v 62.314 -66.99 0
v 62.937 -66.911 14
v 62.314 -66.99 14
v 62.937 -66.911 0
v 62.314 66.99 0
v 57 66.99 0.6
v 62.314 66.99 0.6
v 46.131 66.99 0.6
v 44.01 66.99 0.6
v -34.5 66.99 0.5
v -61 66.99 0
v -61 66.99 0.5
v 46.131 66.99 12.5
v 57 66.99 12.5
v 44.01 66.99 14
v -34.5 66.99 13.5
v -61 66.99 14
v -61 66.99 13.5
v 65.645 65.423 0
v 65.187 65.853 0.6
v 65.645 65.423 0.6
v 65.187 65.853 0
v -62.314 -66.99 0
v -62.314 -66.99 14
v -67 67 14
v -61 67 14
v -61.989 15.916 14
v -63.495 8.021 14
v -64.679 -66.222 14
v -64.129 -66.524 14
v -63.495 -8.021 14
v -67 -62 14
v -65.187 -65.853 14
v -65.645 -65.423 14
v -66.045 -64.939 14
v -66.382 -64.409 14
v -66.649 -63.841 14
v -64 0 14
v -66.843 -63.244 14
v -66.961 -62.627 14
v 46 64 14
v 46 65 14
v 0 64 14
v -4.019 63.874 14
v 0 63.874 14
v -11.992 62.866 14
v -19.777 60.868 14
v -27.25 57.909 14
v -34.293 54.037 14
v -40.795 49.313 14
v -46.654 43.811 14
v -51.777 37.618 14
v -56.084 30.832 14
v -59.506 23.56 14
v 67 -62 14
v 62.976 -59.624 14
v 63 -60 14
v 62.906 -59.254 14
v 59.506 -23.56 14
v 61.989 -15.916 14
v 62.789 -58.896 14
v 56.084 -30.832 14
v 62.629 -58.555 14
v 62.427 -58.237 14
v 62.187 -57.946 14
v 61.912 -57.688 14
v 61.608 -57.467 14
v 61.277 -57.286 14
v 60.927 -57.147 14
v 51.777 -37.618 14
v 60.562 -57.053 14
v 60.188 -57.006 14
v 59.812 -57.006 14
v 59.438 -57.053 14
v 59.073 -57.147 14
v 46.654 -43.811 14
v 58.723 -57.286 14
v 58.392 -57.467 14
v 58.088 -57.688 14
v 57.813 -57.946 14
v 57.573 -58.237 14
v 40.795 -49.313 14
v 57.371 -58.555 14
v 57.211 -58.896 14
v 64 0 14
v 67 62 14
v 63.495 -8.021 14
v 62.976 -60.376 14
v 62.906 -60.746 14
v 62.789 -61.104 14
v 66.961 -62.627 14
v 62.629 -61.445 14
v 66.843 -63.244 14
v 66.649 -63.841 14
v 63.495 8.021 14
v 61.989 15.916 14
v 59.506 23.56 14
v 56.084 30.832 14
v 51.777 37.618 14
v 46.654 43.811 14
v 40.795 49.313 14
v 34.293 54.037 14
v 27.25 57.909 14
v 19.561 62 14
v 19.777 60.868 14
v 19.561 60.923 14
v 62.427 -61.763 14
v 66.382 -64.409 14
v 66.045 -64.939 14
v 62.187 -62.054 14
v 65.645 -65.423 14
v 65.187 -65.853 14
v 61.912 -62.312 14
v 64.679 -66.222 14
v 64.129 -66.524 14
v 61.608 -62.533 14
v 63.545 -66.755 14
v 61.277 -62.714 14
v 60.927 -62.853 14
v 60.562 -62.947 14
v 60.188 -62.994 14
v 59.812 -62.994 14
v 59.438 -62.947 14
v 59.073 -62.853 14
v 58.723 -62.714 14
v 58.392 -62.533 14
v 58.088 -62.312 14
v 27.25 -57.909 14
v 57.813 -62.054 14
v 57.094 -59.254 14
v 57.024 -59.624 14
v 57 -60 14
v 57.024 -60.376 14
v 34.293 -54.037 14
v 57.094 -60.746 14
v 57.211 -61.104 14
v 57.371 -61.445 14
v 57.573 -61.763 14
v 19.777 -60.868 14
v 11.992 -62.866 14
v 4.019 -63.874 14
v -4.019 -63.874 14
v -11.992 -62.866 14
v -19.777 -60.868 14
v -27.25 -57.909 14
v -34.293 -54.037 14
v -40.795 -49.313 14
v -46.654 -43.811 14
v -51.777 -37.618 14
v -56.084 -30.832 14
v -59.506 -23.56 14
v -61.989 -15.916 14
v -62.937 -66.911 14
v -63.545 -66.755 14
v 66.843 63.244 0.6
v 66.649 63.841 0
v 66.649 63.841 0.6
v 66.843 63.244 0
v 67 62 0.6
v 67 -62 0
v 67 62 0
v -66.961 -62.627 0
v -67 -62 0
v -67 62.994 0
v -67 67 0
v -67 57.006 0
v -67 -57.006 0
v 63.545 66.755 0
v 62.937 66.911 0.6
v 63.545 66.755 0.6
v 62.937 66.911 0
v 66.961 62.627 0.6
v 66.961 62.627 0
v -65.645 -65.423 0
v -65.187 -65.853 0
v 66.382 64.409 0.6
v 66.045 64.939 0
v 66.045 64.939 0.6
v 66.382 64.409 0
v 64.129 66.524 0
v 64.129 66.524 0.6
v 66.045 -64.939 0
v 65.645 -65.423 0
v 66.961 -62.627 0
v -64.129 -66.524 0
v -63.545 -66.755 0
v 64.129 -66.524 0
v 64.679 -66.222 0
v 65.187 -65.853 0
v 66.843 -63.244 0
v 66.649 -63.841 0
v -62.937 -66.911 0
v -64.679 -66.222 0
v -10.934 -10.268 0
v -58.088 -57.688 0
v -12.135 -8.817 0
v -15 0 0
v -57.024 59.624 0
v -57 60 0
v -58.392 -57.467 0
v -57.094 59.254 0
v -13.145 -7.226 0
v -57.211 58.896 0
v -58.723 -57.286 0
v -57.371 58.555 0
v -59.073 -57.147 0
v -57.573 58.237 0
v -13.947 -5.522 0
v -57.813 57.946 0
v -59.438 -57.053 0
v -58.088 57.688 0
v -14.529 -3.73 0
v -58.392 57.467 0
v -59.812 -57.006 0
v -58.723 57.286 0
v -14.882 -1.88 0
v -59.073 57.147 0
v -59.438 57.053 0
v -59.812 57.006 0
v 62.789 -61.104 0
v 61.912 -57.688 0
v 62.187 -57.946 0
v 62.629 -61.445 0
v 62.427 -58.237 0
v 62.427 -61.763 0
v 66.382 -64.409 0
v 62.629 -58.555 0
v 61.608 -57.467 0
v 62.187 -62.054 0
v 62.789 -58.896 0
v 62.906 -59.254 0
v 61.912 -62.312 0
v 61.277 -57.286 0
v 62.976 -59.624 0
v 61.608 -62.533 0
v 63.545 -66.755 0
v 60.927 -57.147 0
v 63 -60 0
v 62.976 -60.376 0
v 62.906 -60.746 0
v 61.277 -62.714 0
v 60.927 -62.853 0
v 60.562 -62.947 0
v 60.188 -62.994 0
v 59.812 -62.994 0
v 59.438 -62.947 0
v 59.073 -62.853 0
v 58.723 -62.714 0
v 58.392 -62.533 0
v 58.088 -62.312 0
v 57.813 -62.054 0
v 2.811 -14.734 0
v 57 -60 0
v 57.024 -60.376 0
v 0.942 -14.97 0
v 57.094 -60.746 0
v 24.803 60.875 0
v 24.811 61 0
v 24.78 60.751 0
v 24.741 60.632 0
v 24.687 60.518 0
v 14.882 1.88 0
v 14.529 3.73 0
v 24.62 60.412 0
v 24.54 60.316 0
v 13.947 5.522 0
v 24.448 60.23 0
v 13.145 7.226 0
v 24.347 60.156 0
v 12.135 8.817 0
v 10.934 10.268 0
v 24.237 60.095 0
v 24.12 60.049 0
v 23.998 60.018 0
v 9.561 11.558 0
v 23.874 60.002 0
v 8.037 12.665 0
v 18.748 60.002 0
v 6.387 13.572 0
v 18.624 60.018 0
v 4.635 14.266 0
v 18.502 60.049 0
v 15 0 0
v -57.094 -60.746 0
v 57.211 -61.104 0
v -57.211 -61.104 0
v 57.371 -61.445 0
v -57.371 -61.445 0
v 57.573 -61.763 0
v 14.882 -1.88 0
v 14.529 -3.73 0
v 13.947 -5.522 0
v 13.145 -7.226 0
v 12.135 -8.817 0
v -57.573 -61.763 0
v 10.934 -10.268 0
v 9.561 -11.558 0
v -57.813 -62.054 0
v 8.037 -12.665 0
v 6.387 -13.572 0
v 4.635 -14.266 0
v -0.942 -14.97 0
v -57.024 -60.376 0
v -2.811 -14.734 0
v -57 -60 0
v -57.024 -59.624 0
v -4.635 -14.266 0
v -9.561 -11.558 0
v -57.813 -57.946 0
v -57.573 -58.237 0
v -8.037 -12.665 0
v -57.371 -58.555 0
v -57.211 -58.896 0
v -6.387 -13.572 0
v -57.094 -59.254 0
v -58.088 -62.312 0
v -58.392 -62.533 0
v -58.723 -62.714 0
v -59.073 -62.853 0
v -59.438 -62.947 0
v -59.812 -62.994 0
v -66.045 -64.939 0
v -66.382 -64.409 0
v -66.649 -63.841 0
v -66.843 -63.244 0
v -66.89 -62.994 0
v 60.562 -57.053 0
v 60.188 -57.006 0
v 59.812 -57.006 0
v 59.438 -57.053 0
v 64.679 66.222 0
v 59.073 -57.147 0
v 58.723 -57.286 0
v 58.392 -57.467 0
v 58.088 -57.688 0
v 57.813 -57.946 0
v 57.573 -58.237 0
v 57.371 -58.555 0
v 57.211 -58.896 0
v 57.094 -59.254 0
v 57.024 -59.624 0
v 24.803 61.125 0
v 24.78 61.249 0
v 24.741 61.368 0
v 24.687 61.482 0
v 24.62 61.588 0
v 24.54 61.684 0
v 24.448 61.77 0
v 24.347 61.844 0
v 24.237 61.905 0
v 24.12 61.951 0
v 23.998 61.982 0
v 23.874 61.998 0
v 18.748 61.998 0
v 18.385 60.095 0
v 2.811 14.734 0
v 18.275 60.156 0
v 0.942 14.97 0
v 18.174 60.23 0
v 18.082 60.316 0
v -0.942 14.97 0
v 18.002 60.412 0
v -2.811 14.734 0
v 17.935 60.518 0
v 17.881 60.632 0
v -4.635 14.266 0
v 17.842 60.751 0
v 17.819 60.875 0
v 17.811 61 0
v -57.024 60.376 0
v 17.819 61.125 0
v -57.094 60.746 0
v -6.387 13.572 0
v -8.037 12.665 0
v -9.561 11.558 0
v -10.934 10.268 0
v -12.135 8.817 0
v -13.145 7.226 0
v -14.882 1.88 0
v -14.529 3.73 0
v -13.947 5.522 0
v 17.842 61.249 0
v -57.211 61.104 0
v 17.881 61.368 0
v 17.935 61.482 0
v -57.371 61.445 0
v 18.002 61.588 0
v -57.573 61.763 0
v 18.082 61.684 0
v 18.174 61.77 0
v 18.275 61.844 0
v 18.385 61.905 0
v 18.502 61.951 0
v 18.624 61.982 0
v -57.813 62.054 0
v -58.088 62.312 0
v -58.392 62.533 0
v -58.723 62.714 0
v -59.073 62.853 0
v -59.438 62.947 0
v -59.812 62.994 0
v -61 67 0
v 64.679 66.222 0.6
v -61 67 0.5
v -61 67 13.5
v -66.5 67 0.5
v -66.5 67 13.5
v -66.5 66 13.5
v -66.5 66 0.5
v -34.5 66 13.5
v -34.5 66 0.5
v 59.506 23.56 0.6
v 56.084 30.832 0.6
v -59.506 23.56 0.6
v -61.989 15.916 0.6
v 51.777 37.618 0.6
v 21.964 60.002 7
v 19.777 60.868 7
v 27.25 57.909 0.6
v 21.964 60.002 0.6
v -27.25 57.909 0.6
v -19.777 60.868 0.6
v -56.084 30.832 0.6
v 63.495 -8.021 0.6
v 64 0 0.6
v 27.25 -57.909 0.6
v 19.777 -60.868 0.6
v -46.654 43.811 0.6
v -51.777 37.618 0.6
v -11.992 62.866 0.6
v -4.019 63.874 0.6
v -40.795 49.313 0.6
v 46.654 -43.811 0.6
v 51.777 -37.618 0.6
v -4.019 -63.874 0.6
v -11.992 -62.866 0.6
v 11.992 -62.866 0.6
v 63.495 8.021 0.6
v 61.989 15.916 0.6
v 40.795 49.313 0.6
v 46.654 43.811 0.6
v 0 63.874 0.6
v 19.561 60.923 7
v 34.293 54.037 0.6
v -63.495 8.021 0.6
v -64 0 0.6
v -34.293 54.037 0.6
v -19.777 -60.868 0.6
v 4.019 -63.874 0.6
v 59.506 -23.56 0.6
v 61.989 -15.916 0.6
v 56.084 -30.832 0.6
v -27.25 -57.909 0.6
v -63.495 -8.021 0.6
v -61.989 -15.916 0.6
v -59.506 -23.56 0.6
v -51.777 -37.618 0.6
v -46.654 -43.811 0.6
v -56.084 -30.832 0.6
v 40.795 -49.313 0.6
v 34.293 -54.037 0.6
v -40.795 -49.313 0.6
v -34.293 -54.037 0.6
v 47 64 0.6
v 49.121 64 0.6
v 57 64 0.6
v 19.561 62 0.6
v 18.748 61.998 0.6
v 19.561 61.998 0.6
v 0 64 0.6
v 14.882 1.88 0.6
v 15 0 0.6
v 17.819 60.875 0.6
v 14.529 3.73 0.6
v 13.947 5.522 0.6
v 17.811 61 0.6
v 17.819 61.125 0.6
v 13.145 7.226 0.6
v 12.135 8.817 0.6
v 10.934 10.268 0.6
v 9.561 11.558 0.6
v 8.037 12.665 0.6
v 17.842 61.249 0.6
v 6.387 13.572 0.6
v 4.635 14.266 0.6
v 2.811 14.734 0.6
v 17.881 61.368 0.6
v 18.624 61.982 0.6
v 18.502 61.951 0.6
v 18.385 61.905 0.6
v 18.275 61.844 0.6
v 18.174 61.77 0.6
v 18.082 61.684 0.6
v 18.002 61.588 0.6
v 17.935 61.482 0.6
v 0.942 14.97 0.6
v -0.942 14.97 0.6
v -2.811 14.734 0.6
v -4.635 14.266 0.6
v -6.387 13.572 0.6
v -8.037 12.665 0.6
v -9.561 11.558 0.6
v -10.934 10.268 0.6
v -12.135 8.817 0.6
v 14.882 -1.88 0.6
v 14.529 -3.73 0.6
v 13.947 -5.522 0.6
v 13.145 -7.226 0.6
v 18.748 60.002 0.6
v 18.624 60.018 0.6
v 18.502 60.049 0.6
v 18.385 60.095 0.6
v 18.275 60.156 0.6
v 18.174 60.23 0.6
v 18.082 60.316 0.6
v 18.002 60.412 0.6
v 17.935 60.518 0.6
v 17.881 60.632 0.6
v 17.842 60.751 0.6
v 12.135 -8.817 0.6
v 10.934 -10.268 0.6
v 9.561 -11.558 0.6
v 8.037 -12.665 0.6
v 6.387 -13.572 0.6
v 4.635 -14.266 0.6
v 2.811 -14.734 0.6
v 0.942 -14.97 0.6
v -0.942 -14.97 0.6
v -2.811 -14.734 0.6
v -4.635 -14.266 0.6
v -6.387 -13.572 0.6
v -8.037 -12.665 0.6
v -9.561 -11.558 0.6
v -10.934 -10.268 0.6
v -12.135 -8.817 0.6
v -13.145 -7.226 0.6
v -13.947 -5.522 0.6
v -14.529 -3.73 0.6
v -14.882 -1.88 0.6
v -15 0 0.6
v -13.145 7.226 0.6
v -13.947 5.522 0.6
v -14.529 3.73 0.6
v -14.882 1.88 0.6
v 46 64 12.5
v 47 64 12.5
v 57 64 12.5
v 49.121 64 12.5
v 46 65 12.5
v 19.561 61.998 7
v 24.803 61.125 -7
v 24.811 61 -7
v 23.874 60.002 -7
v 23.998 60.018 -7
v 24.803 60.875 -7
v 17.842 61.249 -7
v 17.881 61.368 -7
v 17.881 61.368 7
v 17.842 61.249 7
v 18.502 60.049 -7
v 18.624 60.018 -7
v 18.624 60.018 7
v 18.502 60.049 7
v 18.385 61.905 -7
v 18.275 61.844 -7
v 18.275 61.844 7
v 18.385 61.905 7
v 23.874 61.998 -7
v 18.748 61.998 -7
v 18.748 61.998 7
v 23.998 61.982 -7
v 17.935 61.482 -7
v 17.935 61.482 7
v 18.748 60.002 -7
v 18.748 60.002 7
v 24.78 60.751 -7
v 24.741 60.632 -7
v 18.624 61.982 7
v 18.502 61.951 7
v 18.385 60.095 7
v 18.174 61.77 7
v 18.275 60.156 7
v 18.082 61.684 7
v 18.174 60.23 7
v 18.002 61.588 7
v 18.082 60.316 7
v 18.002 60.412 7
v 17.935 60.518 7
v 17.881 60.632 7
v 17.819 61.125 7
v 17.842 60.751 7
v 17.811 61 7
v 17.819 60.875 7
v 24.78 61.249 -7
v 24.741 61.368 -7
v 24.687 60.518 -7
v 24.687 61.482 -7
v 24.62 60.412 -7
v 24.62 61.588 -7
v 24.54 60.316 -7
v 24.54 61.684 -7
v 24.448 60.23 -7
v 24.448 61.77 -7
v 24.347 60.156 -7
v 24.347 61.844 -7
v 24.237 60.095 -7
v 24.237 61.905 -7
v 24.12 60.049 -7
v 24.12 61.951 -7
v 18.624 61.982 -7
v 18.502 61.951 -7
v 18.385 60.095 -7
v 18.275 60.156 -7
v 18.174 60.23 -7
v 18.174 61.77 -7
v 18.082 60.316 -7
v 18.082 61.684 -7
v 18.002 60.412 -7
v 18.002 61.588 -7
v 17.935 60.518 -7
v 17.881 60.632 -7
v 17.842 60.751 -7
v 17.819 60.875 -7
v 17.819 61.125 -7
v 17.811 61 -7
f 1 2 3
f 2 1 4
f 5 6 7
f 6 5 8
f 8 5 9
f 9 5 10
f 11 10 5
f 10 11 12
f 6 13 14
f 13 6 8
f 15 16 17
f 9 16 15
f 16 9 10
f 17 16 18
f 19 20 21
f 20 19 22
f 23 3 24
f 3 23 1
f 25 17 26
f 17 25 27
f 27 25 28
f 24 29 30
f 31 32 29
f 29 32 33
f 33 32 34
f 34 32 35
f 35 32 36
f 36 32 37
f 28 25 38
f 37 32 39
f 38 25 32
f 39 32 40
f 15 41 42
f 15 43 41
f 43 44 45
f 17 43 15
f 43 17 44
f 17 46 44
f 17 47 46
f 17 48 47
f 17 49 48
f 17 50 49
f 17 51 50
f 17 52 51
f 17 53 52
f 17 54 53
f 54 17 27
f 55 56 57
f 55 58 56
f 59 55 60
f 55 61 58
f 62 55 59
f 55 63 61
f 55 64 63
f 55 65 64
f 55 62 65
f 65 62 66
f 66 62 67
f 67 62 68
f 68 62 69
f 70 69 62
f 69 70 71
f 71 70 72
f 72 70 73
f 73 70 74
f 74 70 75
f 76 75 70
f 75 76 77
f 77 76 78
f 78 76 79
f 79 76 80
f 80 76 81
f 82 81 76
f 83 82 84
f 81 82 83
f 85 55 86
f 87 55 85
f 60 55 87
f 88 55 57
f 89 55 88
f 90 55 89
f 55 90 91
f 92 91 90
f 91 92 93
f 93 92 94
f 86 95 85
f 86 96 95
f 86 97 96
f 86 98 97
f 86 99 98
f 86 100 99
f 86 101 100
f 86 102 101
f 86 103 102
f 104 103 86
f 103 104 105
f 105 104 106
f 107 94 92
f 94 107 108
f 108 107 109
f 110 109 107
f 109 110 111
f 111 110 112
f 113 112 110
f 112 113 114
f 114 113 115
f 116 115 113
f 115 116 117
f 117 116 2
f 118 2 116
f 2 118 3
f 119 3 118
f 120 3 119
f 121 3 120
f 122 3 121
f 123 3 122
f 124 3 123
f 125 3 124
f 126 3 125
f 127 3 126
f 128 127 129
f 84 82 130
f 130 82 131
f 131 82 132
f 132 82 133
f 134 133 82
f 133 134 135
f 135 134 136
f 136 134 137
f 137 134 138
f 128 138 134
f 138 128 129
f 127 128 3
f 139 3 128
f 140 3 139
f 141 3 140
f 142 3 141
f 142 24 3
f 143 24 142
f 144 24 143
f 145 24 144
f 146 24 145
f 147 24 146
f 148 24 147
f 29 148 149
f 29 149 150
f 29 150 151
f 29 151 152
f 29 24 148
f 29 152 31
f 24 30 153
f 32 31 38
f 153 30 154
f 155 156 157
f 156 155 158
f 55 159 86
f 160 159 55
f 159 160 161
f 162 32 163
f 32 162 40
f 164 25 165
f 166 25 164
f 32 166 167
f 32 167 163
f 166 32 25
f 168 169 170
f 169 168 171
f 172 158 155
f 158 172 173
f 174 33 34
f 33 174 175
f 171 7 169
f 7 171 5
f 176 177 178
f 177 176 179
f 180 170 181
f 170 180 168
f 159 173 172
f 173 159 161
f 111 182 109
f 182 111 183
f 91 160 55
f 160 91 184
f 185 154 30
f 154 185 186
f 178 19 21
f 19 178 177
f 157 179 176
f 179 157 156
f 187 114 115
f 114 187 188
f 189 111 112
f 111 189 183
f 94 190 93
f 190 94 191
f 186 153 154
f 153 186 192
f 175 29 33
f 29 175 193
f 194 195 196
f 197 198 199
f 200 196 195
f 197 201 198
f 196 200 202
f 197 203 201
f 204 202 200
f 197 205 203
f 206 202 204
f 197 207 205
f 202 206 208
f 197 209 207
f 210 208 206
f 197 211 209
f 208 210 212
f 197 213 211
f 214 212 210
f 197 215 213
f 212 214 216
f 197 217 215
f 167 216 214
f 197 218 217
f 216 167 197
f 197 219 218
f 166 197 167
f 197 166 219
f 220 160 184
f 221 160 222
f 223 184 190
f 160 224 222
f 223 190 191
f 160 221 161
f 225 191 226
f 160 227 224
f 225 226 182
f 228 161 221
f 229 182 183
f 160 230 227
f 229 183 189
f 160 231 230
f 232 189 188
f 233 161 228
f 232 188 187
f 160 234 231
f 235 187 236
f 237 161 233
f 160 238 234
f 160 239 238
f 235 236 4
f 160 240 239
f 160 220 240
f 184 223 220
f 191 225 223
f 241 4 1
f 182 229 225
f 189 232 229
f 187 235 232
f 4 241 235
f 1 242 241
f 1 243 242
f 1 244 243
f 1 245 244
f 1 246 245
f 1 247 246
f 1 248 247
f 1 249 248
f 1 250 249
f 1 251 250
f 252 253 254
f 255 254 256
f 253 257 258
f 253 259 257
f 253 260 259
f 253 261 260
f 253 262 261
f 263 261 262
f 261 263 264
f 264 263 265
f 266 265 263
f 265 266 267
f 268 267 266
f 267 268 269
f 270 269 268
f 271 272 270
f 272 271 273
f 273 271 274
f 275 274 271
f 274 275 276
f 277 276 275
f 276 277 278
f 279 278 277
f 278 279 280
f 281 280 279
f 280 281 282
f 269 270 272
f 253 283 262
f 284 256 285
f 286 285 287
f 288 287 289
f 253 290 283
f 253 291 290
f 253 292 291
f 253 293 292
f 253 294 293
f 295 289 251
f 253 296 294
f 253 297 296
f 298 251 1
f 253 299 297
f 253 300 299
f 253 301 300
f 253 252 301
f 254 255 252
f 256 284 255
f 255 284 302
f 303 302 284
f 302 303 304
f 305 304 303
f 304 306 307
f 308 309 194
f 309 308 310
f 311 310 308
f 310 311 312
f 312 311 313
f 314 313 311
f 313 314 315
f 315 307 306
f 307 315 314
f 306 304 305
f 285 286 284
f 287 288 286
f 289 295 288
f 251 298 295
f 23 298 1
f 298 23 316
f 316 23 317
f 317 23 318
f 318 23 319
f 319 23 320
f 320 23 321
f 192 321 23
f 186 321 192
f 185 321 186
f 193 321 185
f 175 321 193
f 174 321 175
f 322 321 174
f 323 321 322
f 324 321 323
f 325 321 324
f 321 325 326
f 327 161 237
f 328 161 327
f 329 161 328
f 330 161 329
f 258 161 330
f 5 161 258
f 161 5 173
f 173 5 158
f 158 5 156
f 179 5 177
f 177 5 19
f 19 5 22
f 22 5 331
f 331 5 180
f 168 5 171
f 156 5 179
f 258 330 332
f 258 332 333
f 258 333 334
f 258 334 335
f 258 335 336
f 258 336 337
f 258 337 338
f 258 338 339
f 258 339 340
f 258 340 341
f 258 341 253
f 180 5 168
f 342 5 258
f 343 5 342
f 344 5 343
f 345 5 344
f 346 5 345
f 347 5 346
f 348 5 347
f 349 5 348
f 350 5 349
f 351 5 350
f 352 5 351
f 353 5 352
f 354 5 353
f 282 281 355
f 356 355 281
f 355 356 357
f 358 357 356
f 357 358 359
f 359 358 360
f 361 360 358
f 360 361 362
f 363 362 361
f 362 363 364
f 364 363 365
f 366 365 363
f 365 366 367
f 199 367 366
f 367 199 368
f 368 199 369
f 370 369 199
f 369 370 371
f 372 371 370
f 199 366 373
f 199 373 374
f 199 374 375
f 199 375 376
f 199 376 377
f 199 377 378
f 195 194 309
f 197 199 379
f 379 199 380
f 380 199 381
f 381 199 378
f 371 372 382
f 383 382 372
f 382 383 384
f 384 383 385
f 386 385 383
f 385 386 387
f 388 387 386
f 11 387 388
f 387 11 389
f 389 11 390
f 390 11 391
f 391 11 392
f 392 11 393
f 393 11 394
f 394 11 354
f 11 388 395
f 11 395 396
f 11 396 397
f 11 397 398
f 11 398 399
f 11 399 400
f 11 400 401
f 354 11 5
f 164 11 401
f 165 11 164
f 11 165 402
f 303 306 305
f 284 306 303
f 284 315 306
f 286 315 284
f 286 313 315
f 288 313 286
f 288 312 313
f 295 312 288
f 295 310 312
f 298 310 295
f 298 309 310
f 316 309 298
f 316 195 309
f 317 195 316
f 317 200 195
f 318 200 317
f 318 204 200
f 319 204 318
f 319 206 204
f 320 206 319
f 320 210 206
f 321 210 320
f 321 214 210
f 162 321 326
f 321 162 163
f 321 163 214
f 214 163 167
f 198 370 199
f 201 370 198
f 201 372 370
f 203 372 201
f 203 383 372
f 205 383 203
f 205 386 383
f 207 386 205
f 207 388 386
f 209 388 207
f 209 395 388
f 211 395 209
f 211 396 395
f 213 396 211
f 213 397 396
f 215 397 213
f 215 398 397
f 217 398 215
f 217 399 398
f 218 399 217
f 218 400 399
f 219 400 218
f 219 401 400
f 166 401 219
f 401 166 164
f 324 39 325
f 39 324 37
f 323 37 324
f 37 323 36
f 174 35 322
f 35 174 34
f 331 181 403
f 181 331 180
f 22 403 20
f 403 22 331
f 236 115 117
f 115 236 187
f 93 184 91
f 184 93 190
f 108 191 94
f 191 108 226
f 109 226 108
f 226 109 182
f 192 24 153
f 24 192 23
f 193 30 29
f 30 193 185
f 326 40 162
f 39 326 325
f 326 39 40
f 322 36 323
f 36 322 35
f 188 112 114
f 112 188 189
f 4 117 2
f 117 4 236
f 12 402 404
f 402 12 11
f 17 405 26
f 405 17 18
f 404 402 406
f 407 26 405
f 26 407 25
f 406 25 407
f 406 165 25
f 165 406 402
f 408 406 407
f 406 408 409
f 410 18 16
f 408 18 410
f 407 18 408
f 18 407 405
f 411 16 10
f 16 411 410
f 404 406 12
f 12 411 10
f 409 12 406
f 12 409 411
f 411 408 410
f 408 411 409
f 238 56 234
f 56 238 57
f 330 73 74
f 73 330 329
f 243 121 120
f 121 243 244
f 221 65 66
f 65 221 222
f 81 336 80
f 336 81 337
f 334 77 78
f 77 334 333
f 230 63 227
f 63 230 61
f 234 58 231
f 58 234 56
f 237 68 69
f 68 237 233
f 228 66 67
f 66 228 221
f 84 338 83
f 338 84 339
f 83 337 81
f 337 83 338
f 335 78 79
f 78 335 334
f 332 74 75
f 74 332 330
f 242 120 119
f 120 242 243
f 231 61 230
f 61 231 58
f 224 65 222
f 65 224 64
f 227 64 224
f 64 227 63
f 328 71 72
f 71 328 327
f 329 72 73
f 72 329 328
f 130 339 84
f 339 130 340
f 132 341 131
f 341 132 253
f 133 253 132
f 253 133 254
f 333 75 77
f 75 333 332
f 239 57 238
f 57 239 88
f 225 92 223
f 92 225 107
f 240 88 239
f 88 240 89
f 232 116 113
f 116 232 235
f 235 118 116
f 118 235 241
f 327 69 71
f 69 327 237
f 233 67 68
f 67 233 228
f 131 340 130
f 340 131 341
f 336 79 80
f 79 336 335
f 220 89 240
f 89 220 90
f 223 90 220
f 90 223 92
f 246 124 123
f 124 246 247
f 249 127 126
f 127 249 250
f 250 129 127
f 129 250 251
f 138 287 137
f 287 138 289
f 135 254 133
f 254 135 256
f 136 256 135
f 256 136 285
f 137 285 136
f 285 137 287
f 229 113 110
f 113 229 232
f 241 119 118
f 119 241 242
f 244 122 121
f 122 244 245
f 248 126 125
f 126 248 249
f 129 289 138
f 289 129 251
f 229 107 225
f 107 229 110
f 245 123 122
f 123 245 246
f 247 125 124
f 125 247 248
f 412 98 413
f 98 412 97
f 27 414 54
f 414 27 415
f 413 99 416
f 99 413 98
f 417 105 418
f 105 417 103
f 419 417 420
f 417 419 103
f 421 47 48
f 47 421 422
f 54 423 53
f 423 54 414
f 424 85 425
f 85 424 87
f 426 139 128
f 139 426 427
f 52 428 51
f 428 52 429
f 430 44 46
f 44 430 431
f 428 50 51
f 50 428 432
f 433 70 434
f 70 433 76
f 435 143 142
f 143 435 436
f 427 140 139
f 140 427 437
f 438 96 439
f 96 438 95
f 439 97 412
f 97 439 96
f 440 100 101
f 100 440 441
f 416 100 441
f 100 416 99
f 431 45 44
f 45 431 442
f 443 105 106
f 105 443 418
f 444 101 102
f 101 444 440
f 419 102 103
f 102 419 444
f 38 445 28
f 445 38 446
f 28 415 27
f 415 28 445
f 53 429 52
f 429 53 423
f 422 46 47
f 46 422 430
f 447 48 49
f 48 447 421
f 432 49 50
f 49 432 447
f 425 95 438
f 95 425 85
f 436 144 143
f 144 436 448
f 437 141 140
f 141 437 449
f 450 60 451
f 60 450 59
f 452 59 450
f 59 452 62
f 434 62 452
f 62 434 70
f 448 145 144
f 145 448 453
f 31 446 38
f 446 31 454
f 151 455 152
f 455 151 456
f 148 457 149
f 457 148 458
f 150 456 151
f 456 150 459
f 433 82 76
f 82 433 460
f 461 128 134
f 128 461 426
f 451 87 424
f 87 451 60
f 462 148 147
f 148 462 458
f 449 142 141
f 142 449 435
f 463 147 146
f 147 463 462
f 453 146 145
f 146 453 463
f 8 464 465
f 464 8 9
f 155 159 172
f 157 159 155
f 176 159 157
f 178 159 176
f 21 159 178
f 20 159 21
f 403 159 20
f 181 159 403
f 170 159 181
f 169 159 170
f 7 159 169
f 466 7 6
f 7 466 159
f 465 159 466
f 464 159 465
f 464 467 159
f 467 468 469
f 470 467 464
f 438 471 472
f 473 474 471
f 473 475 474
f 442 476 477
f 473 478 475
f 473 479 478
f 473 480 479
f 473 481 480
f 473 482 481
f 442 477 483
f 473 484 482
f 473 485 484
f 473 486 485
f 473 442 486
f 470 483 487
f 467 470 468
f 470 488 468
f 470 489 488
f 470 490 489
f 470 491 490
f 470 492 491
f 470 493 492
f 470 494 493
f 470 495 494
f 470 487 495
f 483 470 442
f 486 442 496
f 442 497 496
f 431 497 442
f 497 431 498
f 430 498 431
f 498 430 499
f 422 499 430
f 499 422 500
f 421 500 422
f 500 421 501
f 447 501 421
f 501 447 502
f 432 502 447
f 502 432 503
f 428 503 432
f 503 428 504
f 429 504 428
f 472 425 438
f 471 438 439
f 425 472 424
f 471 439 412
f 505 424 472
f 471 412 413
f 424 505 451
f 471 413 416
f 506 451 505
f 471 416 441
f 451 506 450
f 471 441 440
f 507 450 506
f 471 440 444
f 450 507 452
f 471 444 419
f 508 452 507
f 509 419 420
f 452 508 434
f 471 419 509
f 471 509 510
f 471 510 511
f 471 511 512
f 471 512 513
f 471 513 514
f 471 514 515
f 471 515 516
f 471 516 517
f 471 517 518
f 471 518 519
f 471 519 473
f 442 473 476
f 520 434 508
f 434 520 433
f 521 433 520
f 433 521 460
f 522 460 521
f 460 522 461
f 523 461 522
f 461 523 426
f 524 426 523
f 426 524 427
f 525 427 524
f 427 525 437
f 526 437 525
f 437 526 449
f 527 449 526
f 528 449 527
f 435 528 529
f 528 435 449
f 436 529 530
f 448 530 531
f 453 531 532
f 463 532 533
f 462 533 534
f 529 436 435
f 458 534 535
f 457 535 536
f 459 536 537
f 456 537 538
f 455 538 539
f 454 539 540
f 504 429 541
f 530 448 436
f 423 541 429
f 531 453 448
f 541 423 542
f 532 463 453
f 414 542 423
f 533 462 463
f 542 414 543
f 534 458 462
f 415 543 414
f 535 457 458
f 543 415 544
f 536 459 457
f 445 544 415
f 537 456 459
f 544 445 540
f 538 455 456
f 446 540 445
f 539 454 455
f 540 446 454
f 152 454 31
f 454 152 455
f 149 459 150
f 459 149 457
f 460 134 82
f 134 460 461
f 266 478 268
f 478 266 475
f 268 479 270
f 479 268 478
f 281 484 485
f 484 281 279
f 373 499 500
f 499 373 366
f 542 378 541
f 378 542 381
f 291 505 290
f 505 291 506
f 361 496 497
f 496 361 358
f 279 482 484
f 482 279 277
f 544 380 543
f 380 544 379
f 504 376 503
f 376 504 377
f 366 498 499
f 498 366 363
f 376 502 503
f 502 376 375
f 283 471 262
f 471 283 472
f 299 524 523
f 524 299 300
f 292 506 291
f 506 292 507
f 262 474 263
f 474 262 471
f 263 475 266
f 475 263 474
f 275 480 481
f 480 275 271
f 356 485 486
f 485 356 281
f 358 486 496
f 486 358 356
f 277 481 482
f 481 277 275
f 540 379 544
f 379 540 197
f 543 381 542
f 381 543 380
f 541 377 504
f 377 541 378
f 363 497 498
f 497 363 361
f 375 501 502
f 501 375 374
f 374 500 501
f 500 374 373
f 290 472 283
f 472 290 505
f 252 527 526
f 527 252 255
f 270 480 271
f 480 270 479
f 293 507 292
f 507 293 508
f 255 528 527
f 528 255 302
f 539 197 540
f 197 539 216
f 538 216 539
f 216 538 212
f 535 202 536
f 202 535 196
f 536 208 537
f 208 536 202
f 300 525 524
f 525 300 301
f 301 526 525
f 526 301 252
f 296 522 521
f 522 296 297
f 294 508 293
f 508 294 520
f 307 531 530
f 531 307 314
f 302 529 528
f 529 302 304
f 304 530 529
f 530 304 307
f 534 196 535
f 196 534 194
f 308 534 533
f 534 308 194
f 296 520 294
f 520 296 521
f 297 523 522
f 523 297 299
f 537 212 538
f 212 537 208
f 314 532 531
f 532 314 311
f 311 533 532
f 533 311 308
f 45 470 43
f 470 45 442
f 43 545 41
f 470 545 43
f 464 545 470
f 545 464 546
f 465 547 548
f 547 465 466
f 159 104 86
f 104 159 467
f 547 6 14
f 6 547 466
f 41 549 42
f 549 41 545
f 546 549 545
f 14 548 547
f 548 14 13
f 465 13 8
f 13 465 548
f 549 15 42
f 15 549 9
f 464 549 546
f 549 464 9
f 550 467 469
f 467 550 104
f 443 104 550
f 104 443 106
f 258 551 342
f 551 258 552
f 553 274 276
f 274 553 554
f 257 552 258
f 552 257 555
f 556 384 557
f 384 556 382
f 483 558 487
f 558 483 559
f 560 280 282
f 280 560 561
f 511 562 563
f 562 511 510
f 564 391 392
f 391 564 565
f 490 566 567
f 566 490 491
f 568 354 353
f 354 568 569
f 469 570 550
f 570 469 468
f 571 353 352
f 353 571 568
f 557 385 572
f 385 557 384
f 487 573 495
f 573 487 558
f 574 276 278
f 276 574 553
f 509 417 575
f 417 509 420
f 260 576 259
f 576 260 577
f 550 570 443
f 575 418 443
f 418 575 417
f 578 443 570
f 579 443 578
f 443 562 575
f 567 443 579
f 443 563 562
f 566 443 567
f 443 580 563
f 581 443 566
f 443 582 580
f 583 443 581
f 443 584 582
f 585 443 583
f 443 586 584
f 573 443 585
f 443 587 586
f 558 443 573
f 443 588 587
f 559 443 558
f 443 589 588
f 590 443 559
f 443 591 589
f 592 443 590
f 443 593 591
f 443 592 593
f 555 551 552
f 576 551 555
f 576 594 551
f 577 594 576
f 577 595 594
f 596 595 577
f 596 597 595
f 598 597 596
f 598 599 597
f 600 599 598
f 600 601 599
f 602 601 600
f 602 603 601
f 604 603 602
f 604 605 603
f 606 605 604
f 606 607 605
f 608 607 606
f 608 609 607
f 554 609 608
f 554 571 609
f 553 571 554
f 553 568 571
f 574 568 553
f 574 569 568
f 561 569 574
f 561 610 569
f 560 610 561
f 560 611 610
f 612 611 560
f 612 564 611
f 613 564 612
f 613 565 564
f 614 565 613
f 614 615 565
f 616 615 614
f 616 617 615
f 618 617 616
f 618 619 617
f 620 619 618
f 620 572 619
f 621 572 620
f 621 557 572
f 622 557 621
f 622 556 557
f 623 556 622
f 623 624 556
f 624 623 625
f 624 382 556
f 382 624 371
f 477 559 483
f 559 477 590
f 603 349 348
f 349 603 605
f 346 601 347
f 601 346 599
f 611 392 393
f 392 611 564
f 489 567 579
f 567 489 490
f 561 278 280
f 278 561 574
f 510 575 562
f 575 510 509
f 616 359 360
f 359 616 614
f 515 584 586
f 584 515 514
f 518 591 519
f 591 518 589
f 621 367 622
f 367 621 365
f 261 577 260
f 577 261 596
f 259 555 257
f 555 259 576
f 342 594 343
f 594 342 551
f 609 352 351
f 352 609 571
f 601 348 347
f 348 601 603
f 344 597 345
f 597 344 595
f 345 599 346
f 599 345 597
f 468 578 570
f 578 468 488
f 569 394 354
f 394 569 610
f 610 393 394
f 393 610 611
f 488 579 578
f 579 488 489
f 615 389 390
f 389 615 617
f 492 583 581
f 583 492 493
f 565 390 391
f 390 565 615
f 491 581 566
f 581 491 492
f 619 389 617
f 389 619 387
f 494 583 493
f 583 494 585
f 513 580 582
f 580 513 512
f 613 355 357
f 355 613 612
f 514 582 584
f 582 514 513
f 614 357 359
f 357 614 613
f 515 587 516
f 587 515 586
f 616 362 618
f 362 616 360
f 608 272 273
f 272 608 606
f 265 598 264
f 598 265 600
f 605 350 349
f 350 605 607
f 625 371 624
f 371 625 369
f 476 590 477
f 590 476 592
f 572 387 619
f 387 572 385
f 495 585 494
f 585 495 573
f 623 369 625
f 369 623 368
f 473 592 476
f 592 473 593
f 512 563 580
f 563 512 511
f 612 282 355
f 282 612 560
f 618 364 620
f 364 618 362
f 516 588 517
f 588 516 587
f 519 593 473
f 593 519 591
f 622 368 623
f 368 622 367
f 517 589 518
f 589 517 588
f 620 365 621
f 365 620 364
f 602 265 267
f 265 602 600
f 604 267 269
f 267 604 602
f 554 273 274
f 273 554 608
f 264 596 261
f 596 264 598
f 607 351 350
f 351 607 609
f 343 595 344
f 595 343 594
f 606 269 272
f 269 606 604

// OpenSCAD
$fn = 50;


union() {
	difference() {
		union() {
			hull() {
				translate(v = [-62.0000000000, 62.0000000000, 0]) {
					cylinder(h = 14, r = 5);
				}
				translate(v = [62.0000000000, 62.0000000000, 0]) {
					cylinder(h = 14, r = 5);
				}
				translate(v = [-62.0000000000, -62.0000000000, 0]) {
					cylinder(h = 14, r = 5);
				}
				translate(v = [62.0000000000, -62.0000000000, 0]) {
					cylinder(h = 14, r = 5);
				}
			}
			translate(v = [-67.0000000000, 61.0000000000, 0]) {
				cube(size = [6, 6, 14]);
			}
		}
		union() {
			translate(v = [-67.5000000000, -60.0000000000, -250.0000000000]) {
				rotate(a = [0, 0, 0]) {
					difference() {
						union() {
							hull() {
								translate(v = [7.5000000000, 0, 0]) {
									cylinder(h = 250, r = 3.0000000000, r1 = 3.0000000000, r2 = 3.0000000000);
								}
								translate(v = [-7.5000000000, 0, 0]) {
									cylinder(h = 250, r = 3.0000000000, r1 = 3.0000000000, r2 = 3.0000000000);
								}
							}
						}
						union();
					}
				}
			}
			translate(v = [-67.5000000000, 60.0000000000, -250.0000000000]) {
				rotate(a = [0, 0, 0]) {
					difference() {
						union() {
							hull() {
								translate(v = [7.5000000000, 0, 0]) {
									cylinder(h = 250, r = 3.0000000000, r1 = 3.0000000000, r2 = 3.0000000000);
								}
								translate(v = [-7.5000000000, 0, 0]) {
									cylinder(h = 250, r = 3.0000000000, r1 = 3.0000000000, r2 = 3.0000000000);
								}
							}
						}
						union();
					}
				}
			}
			translate(v = [-66.5000000000, 66.0000000000, 0.5000000000]) {
				cube(size = [32, 1, 13.0000000000]);
			}
			translate(v = [60.0000000000, -60.0000000000, 0]) {
				cylinder(h = 100, r = 3.0000000000);
			}
			translate(v = [0, 0, 0.6000000000]) {
				cylinder(h = 16.4000000000, r = 64.0000000000);
			}
			translate(v = [0, 0, -7.0000000000]) {
				cylinder(h = 14, r = 15.0000000000);
			}
			translate(v = [0.0000000000, 62.0000000000, 0.6000000000]) {
				cube(size = [67.0000000000, 2, 16.4000000000]);
			}
			translate(v = [57.0000000000, 62.0000000000, 0.6000000000]) {
				cube(size = [10, 5, 16.4000000000]);
			}
			translate(v = [46.0000000000, 62.0000000000, 12.5000000000]) {
				cube(size = [21, 5, 1.5000000000]);
			}
			translate(v = [43.2500000000, 67.7500000000, 0.6000000000]) {
				rotate(a = [0, 0, -45]) {
					cube(size = [7.5000000000, 1.5000000000, 16.4000000000]);
				}
			}
			translate(v = [12.0610000000, 60.0000000000, 0.6000000000]) {
				cube(size = [7.5000000000, 2, 13.4000000000]);
			}
		}
	}
	union() {
		translate(v = [21.3110000000, 61.0000000000, -7.0000000000]) {
			rotate(a = [0, 0, 0]) {
				difference() {
					union() {
						#hull() {
							#translate(v = [2.5000000000, 0, 0]) {
								cylinder(h = 14, r = 1.0000000000, r1 = 1.0000000000, r2 = 1.0000000000);
							}
							#translate(v = [-2.5000000000, 0, 0]) {
								cylinder(h = 14, r = 1.0000000000, r1 = 1.0000000000, r2 = 1.0000000000);
							}
						}
					}
					union();
				}
			}
		}
	}
}
